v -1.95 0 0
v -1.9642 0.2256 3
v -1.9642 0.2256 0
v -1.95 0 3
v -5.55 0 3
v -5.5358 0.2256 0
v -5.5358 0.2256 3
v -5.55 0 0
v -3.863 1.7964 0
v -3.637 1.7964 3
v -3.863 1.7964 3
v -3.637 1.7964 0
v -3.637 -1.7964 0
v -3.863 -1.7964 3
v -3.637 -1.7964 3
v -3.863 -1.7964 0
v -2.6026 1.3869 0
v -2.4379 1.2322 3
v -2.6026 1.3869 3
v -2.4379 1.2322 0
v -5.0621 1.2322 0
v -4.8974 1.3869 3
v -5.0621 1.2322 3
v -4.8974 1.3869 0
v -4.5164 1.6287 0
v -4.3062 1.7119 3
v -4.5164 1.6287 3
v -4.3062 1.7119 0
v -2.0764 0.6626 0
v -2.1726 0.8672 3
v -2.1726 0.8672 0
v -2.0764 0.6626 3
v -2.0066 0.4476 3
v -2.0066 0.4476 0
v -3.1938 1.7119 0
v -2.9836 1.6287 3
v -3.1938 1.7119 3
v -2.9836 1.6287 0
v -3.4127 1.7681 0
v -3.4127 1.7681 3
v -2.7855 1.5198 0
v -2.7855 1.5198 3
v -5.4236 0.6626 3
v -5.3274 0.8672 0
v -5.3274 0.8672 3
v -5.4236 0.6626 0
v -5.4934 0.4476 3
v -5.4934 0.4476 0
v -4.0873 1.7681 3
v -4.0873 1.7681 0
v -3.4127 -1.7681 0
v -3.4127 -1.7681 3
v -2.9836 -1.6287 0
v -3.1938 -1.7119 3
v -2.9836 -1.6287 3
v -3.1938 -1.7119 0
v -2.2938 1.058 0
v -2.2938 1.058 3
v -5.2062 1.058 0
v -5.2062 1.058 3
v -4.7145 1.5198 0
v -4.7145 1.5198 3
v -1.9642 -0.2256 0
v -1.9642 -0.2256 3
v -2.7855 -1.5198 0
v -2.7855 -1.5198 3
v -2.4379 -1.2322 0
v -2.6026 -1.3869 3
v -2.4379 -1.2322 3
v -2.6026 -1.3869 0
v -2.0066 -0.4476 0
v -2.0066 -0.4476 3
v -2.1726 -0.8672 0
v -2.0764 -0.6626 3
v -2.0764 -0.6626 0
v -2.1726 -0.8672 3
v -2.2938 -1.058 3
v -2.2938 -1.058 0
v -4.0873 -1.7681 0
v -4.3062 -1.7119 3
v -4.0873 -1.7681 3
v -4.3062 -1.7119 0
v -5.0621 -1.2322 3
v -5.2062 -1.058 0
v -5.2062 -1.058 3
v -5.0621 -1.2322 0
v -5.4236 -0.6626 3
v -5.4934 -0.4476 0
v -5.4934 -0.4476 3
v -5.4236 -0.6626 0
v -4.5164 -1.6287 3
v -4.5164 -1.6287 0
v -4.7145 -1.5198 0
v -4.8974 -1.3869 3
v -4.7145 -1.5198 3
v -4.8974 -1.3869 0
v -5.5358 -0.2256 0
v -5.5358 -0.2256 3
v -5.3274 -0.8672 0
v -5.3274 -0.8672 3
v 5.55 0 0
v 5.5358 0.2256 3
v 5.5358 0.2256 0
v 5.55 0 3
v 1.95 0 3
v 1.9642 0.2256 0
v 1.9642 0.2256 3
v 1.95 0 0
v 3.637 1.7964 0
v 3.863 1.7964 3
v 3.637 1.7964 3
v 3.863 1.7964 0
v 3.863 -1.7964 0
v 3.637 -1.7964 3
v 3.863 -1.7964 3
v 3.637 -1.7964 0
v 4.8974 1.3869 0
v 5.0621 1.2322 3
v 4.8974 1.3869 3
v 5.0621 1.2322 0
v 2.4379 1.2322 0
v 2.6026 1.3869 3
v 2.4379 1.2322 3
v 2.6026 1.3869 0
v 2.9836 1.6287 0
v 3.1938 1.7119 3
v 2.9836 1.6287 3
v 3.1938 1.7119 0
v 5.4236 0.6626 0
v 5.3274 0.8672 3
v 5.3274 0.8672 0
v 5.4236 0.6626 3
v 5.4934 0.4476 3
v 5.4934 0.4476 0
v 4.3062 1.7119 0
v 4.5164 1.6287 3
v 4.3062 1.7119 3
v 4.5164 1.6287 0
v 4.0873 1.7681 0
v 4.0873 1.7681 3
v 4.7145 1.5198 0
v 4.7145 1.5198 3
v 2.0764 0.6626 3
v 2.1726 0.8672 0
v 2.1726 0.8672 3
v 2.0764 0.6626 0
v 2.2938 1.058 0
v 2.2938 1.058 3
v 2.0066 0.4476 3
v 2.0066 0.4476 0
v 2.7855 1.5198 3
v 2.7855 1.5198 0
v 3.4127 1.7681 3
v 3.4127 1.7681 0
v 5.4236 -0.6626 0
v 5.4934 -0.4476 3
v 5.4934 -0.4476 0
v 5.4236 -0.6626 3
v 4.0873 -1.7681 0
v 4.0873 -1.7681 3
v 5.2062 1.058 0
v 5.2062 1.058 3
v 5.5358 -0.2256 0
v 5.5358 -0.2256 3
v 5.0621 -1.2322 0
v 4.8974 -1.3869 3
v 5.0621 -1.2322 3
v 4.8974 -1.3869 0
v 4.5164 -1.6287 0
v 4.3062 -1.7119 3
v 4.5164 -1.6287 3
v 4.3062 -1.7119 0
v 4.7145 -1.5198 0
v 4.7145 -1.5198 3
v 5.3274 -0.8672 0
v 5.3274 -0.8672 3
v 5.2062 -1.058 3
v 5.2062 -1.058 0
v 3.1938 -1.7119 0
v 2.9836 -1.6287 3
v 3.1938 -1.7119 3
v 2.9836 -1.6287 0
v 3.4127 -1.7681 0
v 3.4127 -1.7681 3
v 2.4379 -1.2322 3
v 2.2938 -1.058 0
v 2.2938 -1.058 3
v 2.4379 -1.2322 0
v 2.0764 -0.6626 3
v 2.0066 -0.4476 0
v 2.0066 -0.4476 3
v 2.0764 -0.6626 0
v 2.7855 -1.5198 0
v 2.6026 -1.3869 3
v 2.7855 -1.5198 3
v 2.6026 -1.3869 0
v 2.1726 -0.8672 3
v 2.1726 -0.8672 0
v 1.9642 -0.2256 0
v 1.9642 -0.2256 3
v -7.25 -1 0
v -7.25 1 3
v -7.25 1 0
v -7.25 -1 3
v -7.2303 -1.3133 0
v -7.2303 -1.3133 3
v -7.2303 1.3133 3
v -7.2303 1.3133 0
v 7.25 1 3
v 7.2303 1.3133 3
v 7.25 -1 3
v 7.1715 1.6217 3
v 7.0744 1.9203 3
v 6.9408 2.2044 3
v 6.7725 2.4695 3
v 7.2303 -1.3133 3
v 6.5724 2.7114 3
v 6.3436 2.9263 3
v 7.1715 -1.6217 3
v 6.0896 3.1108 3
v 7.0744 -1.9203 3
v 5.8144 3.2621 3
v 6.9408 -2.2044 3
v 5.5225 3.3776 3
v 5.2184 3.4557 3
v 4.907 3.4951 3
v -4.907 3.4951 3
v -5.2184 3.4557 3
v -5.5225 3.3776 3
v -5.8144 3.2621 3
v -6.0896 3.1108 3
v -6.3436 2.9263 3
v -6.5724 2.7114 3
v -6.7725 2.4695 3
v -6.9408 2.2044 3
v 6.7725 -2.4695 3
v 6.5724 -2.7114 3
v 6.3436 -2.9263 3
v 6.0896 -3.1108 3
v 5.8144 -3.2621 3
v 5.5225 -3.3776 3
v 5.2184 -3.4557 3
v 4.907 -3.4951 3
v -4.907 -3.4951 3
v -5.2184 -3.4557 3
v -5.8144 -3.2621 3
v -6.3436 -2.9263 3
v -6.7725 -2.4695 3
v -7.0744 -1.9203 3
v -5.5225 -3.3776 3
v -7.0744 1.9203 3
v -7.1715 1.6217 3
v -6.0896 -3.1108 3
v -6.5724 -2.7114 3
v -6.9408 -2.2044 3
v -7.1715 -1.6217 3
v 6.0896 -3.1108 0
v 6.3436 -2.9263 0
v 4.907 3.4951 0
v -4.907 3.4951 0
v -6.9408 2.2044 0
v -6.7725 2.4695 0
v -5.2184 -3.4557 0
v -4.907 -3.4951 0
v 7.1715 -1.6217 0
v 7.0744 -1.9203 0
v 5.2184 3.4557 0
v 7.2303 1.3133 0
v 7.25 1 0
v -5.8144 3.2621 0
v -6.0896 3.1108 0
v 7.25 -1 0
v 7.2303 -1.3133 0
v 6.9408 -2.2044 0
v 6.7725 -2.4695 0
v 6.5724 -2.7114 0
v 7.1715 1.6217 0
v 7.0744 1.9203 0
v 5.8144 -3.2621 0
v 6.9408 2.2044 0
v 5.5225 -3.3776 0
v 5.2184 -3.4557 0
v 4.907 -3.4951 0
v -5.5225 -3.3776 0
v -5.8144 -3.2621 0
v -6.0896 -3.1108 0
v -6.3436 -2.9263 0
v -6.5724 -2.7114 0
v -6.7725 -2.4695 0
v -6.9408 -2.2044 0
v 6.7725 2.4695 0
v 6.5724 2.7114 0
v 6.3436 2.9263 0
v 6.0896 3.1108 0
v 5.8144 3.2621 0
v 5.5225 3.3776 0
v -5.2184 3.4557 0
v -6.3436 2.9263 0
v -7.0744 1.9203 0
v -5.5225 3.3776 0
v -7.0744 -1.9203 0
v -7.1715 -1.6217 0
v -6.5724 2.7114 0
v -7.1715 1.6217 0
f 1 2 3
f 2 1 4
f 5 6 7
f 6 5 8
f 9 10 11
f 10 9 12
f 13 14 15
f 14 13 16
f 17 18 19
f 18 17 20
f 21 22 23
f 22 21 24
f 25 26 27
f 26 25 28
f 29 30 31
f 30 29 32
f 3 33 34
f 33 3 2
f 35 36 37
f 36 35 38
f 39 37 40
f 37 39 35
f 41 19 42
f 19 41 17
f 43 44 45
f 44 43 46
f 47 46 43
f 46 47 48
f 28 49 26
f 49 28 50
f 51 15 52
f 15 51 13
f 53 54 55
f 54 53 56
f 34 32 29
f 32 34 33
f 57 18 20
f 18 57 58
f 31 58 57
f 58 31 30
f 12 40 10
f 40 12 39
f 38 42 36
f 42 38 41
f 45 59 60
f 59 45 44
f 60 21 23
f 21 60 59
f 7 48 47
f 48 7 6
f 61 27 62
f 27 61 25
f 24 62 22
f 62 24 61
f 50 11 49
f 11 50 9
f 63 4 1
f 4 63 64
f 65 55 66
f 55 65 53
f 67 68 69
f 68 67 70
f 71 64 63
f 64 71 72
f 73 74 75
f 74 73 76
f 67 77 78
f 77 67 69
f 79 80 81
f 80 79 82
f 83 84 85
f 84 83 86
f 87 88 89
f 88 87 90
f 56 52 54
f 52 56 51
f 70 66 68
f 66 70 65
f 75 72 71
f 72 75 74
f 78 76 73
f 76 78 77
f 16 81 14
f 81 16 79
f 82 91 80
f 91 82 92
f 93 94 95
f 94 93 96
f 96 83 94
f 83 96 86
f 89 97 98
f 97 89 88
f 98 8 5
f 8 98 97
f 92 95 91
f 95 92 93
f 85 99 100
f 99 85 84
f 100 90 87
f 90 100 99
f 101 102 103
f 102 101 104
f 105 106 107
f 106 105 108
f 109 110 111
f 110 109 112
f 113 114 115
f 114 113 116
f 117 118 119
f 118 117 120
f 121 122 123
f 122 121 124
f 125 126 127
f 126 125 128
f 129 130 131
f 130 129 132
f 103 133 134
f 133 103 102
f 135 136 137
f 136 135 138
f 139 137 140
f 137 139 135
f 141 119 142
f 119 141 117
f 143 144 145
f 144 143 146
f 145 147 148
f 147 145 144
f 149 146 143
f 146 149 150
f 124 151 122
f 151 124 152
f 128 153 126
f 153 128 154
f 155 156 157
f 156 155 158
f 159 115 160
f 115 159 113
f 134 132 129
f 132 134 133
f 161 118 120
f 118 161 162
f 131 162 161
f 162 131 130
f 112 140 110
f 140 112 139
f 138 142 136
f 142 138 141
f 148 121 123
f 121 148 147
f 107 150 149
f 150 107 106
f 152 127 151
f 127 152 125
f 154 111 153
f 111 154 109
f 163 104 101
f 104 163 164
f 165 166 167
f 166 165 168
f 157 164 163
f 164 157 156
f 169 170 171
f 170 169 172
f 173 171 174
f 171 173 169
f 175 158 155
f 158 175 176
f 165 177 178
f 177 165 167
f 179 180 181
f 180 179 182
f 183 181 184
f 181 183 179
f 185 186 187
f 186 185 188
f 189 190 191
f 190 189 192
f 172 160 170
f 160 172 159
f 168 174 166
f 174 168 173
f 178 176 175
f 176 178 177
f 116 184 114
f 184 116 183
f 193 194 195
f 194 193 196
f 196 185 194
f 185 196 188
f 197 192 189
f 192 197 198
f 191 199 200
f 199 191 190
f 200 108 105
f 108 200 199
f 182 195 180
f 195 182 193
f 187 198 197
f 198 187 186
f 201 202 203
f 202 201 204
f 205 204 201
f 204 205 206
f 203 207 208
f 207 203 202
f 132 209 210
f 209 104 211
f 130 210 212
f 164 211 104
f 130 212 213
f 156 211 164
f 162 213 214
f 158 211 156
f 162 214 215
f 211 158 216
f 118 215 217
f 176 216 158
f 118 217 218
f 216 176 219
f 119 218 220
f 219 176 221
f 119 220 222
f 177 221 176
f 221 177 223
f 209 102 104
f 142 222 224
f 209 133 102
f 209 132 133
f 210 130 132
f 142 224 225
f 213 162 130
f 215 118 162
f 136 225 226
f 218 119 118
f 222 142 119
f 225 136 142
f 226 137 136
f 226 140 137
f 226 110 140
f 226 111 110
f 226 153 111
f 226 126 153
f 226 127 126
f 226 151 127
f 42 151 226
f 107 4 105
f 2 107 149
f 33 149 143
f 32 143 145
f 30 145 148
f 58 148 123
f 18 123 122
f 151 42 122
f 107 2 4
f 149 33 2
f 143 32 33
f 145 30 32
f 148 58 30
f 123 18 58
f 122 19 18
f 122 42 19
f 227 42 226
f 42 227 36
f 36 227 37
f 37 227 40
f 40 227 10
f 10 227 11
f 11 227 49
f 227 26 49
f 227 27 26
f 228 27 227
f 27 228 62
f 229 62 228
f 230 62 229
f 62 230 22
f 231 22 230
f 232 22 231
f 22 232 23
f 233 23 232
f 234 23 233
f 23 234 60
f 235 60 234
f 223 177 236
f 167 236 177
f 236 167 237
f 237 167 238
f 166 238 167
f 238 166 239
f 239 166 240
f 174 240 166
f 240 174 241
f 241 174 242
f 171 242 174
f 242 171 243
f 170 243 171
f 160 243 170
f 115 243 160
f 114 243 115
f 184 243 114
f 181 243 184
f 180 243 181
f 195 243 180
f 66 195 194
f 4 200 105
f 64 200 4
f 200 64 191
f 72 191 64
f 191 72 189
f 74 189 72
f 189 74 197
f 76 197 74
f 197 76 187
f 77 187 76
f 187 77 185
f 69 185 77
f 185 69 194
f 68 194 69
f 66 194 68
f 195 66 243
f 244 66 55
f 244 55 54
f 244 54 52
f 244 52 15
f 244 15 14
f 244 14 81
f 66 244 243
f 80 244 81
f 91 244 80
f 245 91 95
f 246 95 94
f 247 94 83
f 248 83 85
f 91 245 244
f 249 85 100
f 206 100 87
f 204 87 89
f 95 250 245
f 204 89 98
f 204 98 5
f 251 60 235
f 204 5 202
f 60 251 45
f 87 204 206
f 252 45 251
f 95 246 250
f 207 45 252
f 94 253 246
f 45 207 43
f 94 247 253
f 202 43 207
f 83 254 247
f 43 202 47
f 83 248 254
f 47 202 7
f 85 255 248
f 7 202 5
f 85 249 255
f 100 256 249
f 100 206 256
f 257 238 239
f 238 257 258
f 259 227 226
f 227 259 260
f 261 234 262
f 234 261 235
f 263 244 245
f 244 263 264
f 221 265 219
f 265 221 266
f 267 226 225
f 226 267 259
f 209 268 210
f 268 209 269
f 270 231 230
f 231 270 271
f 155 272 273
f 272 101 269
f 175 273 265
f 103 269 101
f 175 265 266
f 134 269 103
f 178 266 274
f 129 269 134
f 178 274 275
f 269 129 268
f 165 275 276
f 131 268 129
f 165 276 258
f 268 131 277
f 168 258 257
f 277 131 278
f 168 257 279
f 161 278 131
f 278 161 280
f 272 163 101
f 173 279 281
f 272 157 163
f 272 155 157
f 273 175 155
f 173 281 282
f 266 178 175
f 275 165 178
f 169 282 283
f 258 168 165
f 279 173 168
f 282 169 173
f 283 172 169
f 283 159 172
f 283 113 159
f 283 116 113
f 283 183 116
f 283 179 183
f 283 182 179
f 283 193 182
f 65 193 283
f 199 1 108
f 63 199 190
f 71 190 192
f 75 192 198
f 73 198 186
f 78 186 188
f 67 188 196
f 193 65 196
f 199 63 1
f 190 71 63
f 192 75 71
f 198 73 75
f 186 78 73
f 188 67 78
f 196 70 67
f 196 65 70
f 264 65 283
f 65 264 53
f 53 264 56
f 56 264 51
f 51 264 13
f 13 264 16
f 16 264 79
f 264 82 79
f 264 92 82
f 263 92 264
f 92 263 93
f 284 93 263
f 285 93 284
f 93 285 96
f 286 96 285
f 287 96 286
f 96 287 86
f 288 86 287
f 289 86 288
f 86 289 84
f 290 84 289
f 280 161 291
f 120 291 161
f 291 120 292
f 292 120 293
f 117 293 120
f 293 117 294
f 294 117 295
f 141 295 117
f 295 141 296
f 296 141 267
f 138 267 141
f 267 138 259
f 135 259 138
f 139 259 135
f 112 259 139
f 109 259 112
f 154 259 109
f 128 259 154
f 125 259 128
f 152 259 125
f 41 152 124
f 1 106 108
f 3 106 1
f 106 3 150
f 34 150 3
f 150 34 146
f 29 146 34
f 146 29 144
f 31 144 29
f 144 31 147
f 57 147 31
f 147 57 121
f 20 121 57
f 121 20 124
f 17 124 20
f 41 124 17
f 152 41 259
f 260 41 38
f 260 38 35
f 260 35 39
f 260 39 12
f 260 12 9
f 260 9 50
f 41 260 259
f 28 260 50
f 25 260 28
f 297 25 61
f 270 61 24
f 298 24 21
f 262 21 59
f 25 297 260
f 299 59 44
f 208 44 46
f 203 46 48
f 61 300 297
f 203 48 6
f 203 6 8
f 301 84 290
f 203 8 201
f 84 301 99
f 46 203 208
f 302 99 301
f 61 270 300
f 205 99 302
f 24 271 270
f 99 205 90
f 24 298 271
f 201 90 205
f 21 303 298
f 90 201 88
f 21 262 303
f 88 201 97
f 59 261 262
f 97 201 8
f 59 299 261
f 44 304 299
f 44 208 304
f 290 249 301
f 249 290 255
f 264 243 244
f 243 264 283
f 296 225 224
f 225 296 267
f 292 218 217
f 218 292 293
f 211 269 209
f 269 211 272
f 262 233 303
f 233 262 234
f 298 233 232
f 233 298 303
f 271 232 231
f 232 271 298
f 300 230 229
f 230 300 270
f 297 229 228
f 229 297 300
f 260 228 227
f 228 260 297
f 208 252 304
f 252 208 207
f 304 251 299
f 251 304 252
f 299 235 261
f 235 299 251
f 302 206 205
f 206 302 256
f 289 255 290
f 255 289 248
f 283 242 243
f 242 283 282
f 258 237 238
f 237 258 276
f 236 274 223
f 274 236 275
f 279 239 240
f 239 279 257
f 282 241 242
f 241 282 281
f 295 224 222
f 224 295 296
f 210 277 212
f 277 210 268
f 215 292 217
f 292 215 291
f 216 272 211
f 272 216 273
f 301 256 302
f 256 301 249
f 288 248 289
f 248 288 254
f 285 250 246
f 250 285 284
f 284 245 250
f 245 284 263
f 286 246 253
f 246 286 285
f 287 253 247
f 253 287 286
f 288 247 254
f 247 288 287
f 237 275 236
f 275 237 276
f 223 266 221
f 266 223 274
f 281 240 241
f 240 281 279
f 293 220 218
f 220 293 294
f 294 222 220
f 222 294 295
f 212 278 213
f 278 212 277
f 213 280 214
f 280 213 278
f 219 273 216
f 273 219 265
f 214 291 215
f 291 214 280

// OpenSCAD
$fn = 50;


difference() {
	union() {
		translate(v = [0, 0, 0]) {
			rotate(a = [0, 0, 0]) {
				hull() {
					translate(v = [-4.7500000000, 1.0000000000, 0]) {
						rotate(a = [0, 0, 0]) {
							translate(v = [0, 0, 0]) {
								rotate(a = [0, 0, 0]) {
									cylinder(h = 3, r = 2.5000000000);
								}
							}
						}
					}
					translate(v = [4.7500000000, 1.0000000000, 0]) {
						rotate(a = [0, 0, 0]) {
							translate(v = [0, 0, 0]) {
								rotate(a = [0, 0, 0]) {
									cylinder(h = 3, r = 2.5000000000);
								}
							}
						}
					}
					translate(v = [-4.7500000000, -1.0000000000, 0]) {
						rotate(a = [0, 0, 0]) {
							translate(v = [0, 0, 0]) {
								rotate(a = [0, 0, 0]) {
									cylinder(h = 3, r = 2.5000000000);
								}
							}
						}
					}
					translate(v = [4.7500000000, -1.0000000000, 0]) {
						rotate(a = [0, 0, 0]) {
							translate(v = [0, 0, 0]) {
								rotate(a = [0, 0, 0]) {
									cylinder(h = 3, r = 2.5000000000);
								}
							}
						}
					}
				}
			}
		}
	}
	union() {
		translate(v = [-3.7500000000, 0.0000000000, 0]) {
			rotate(a = [0, 0, 0]) {
				translate(v = [0, 0, -50]) {
					rotate(a = [0, 0, 0]) {
						cylinder(h = 100, r = 1.8000000000);
					}
				}
			}
		}
		translate(v = [3.7500000000, 0.0000000000, 0]) {
			rotate(a = [0, 0, 0]) {
				translate(v = [0, 0, -50]) {
					rotate(a = [0, 0, 0]) {
						cylinder(h = 100, r = 1.8000000000);
					}
				}
			}
		}
	}
}
